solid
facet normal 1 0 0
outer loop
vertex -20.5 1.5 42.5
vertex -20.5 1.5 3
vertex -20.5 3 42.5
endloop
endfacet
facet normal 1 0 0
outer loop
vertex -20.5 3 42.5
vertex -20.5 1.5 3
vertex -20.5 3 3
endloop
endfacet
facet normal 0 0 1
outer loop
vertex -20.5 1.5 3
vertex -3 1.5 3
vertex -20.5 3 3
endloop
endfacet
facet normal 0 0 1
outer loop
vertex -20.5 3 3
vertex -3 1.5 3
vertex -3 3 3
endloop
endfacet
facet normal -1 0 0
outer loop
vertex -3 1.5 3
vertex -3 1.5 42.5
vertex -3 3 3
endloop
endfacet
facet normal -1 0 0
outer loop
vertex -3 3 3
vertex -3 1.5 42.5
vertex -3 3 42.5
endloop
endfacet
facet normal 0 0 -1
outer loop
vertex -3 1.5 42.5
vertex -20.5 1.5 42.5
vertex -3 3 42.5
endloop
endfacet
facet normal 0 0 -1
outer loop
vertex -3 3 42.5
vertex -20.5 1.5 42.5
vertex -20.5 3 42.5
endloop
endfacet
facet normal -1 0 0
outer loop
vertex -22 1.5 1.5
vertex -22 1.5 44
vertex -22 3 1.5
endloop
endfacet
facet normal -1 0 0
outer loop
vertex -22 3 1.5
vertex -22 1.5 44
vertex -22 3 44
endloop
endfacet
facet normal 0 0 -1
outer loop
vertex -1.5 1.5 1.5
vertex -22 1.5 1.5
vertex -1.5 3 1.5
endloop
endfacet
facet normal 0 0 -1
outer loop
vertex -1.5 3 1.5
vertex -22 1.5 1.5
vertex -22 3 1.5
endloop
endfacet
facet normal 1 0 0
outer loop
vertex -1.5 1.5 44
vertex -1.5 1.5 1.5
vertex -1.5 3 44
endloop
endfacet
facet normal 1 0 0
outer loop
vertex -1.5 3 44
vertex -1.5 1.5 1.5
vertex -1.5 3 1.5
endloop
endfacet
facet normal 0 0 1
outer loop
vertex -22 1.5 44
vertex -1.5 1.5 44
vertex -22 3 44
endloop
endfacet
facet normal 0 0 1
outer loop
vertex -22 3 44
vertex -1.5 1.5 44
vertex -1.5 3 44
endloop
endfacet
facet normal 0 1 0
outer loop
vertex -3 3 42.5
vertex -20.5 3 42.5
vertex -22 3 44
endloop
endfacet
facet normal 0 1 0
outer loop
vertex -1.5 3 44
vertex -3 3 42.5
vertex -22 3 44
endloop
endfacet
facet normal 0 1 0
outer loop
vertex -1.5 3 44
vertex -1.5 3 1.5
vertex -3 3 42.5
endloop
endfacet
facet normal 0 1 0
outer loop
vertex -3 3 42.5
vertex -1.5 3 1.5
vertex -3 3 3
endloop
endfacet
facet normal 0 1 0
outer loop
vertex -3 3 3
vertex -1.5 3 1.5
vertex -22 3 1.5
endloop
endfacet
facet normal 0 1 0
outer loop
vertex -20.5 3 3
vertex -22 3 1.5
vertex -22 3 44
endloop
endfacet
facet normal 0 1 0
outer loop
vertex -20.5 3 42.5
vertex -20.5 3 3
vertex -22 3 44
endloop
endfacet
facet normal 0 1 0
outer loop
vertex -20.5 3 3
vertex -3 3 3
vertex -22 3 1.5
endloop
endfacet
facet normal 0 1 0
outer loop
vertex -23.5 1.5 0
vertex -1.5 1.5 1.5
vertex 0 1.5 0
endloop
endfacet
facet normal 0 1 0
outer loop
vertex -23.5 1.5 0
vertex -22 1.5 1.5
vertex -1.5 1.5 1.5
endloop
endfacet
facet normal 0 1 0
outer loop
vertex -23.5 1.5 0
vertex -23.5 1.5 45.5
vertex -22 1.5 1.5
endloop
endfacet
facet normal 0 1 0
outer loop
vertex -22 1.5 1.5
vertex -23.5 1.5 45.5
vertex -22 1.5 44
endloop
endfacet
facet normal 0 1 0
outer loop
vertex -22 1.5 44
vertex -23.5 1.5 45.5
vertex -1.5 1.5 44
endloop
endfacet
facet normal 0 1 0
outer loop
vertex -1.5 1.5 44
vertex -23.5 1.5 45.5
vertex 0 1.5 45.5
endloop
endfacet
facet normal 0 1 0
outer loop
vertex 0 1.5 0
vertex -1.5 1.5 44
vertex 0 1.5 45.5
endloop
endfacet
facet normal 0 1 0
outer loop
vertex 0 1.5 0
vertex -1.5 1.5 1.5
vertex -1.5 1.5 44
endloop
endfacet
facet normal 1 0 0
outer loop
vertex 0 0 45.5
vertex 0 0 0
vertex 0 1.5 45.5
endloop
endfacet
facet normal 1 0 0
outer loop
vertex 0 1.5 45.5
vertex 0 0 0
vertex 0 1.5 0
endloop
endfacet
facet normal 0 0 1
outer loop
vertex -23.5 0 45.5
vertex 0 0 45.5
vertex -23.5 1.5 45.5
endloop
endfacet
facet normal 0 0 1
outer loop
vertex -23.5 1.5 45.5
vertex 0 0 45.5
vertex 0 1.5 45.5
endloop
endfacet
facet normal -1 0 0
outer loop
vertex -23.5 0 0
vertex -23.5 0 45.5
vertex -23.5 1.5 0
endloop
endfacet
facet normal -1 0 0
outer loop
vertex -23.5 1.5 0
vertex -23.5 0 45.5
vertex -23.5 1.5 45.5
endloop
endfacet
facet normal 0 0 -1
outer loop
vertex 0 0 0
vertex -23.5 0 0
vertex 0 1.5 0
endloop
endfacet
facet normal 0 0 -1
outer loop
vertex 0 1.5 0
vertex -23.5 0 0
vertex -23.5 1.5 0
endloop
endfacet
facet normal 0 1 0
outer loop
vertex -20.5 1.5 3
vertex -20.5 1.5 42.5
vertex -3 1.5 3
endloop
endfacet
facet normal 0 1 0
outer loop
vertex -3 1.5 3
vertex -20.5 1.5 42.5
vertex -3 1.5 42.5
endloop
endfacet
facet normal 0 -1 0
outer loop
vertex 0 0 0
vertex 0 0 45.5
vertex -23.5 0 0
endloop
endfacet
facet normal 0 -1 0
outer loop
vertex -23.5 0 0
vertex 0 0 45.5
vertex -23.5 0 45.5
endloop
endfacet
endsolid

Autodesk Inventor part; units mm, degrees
ref_plane "YZ Plane" through (0, 0, 0) normal (1, 0, 0) x (0, 1, 0)
ref_plane "XZ Plane" through (0, 0, 0) normal (0, 1, 0) x (-1, 0, 0)
ref_plane "XY Plane" through (0, 0, 0) normal (0, 0, 1) x (1, 0, 0)
sketch "Szkic1" plane through (0, 0, 0) normal (0, 1, 0) x (-1, 0, 0)
  line L0 (0, 0) -> (23.5, 0)
  line L1 (23.5, 0) -> (23.5, 45.5)
  line L2 (23.5, 45.5) -> (0, 45.5)
  line L3 (0, 45.5) -> (0, 0)
  dimension "d0" = 23.5
  dimension "d1" = 45.5
extrude "Wyciągnięcie proste1" add sketch "Szkic1" along normal blind 1.5
sketch "Szkic2" plane through (0, 1.5, 0) normal (0, 1, 0) x (1, 0, 0)
  line L0 (-23.5, 0) -> (-23.5, -45.5) construction
  line L1 (-23.5, -45.5) -> (-22, -45.5) construction
  line L2 (-23.5, -45.5) -> (0, -45.5) construction
  line L3 (-22, -45.5) -> (-22, -44) construction
  line L4 (-22, -44) -> (-1.5, -44)
  line L5 (-1.5, -44) -> (-1.5, -1.5)
  line L6 (-1.5, -1.5) -> (-22, -1.5)
  line L7 (-22, -1.5) -> (-22, -44)
  line L8 (-22, -44) -> (-22, -42.5) construction
  line L9 (-22, -42.5) -> (-20.5, -42.5) construction
  line L10 (-1.5, -1.5) -> (-3, -1.5) construction
  line L11 (-3, -1.5) -> (-3, -3) construction
  line L12 (-20.5, -42.5) -> (-3, -42.5)
  line L13 (-3, -42.5) -> (-3, -3)
  line L14 (-3, -3) -> (-20.5, -3)
  line L15 (-20.5, -3) -> (-20.5, -42.5)
  point P0 (0, 0)
  dimension "d4" = 1.5
  dimension "d5" = 1.5
  dimension "d6" = 20.5
  dimension "d7" = 42.5
  dimension "d8" = 1.5
  dimension "d9" = 1.5
  dimension "d10" = 1.5
  dimension "d11" = 1.5
extrude "Wyciągnięcie proste2" add sketch "Szkic2" along normal blind 1.5
properties part number "gora"
